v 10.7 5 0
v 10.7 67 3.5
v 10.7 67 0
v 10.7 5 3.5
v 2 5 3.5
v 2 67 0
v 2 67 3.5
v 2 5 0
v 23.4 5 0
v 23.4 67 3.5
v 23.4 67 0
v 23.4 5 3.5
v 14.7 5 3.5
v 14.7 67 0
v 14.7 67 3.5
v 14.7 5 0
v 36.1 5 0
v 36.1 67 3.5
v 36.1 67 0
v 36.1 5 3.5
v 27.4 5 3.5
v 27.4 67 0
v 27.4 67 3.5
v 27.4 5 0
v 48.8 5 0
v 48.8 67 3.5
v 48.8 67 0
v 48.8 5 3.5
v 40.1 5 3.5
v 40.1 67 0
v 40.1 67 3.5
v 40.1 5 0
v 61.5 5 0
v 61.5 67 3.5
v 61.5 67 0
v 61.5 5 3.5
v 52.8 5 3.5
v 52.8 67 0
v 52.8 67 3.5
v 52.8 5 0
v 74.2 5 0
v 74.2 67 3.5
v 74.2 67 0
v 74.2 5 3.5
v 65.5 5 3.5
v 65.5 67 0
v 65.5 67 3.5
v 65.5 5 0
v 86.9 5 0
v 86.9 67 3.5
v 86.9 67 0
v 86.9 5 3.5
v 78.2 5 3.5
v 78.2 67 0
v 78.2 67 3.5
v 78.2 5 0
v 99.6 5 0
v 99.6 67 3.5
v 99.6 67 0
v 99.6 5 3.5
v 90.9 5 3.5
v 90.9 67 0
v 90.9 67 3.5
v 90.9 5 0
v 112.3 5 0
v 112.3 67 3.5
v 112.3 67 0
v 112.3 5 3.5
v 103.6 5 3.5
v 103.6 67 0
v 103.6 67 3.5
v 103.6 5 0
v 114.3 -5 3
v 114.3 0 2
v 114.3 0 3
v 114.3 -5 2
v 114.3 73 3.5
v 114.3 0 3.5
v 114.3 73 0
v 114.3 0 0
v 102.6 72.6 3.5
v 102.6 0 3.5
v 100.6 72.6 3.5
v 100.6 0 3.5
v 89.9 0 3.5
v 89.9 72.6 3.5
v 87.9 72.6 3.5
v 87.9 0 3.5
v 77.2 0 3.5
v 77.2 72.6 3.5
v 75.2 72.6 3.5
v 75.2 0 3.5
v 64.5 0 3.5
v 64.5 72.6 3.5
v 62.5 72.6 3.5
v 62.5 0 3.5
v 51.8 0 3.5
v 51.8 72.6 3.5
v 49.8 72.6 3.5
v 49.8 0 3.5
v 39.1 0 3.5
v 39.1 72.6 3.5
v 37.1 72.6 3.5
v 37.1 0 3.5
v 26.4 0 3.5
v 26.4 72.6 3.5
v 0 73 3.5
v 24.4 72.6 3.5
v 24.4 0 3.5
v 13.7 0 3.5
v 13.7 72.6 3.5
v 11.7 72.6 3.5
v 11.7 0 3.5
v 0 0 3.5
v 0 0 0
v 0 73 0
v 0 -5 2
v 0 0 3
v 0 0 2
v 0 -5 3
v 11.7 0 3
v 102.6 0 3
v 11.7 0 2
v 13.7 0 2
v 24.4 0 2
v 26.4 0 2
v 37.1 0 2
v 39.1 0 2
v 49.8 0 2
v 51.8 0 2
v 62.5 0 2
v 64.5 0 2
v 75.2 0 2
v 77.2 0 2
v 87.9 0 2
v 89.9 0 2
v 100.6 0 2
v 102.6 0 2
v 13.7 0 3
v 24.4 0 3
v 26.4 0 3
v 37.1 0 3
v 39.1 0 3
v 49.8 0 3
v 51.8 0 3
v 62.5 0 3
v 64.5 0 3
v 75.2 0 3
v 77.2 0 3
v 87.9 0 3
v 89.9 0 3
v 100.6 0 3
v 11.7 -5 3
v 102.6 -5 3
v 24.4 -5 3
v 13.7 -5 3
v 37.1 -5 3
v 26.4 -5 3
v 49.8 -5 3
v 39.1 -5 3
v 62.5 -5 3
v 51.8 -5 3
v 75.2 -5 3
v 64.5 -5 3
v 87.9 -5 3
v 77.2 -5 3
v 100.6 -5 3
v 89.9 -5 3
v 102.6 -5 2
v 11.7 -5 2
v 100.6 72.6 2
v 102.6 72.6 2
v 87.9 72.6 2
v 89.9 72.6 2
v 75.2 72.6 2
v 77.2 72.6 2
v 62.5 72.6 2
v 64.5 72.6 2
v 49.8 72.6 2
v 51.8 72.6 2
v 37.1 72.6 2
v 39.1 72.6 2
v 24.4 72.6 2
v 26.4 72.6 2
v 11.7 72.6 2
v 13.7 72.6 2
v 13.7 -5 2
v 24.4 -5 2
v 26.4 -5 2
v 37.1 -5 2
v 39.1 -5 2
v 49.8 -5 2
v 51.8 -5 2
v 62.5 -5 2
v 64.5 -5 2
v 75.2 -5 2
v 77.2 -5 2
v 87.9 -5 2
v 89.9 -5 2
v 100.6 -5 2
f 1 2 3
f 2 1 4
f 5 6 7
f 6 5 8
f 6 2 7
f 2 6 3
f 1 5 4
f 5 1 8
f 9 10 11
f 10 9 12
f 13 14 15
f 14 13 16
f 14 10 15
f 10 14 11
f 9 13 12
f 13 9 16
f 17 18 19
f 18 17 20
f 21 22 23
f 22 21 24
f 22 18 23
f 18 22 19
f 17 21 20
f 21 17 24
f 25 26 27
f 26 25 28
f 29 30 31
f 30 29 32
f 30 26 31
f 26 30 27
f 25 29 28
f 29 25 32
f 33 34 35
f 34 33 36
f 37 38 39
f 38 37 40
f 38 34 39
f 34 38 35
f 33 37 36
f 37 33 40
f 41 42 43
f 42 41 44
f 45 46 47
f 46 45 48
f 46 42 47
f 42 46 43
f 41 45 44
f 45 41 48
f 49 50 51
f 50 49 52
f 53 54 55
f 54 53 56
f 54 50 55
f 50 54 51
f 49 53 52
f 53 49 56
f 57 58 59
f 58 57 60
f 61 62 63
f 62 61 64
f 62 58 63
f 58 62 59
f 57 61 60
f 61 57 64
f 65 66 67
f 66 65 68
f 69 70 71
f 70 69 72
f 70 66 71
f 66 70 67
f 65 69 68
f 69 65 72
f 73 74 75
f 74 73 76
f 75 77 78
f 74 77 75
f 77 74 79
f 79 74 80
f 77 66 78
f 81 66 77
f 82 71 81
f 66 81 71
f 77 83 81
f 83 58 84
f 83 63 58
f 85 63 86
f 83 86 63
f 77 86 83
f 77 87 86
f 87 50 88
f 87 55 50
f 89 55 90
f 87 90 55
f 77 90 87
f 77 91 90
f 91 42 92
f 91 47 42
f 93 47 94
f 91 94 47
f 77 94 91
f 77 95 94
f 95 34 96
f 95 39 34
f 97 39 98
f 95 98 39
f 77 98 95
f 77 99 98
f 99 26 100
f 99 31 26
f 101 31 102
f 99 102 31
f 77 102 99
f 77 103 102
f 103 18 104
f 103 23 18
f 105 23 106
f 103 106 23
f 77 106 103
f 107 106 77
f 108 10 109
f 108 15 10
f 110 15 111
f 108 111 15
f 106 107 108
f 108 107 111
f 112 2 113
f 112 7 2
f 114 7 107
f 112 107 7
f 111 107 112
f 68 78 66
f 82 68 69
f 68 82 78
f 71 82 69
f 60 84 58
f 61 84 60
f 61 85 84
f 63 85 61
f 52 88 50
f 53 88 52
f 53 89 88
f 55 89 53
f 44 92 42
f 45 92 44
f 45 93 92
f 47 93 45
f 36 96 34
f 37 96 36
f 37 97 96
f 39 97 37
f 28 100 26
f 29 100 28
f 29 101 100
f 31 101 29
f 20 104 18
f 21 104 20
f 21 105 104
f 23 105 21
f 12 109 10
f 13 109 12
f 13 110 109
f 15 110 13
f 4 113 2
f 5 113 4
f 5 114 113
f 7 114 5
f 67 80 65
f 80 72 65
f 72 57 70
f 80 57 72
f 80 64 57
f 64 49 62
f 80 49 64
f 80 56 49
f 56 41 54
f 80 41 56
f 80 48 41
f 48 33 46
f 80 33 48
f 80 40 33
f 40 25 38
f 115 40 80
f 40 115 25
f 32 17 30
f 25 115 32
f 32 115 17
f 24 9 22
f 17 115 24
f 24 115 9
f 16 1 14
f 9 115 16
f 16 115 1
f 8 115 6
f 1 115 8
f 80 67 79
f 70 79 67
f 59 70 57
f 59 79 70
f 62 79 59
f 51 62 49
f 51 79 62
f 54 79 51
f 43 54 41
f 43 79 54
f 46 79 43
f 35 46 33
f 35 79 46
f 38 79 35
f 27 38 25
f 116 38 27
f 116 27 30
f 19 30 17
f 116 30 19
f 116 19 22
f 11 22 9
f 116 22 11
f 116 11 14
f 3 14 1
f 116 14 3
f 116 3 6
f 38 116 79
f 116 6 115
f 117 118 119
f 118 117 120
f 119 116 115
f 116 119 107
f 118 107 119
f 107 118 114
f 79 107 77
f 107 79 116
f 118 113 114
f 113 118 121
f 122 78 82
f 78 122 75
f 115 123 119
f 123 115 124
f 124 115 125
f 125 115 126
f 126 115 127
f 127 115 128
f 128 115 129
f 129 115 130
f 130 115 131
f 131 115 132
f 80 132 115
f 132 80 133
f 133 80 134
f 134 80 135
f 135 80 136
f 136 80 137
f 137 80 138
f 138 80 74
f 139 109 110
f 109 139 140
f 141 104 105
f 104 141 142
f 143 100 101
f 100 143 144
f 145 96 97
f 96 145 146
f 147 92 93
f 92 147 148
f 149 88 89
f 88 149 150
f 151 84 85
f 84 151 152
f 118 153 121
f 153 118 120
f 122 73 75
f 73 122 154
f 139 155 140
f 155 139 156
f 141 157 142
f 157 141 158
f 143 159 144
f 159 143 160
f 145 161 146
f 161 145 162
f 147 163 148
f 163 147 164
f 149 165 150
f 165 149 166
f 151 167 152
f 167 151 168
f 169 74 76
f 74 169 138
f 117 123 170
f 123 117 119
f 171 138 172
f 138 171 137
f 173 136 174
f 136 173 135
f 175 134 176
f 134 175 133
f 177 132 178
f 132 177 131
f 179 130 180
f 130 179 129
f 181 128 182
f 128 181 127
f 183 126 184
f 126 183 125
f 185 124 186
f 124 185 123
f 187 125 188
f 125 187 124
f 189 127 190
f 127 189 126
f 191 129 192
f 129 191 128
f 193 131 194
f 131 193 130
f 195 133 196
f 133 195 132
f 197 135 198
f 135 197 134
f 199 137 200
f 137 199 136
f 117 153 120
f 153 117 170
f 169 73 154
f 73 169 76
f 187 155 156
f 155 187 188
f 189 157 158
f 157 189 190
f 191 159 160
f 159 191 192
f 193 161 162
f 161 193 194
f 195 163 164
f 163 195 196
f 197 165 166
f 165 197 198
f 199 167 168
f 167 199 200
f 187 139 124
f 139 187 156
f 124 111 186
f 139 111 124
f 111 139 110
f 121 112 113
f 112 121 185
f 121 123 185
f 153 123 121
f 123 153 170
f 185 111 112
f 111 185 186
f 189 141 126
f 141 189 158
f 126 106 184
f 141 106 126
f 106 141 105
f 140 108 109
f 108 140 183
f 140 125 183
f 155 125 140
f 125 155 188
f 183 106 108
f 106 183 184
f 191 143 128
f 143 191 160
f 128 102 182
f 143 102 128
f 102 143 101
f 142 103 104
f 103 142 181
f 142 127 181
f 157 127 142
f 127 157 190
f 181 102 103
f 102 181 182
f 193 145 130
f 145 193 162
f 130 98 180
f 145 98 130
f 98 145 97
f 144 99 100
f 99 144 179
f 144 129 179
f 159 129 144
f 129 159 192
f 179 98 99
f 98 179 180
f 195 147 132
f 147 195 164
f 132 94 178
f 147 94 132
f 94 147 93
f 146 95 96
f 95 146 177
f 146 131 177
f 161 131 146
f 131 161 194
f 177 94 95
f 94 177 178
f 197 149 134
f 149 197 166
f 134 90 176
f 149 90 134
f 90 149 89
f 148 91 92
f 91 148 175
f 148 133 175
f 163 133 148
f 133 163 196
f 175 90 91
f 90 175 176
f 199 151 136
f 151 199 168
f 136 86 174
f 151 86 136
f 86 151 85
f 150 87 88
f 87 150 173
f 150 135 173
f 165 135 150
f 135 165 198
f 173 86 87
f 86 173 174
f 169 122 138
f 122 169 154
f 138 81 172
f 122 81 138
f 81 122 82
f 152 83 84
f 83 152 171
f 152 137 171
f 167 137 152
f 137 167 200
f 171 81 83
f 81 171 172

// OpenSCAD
slots = 8;

difference() {
    union() {
        // Grundplatte
        cube( [(slots + 1) * 12.7, 73, 3.5] );
        
        // vordere Halterung
        translate([0, -5, 2]) {
            cube( [(slots + 1) * 12.7, 8, 1] );
        }
    }
    
    // Platinenführungen
    for (i=[1:slots]) {
        translate([i * 12.7 - 1, -6, 2]) {
            cube( [2, 78.6, 5] );
        }
    }
    
    // Aussparungen
    for (i=[0:slots]) {
        translate([i * 12.7 + 2, 5, -0.1]) {
            cube( [8.7, 62, 5] );
        }
    }
    
}
